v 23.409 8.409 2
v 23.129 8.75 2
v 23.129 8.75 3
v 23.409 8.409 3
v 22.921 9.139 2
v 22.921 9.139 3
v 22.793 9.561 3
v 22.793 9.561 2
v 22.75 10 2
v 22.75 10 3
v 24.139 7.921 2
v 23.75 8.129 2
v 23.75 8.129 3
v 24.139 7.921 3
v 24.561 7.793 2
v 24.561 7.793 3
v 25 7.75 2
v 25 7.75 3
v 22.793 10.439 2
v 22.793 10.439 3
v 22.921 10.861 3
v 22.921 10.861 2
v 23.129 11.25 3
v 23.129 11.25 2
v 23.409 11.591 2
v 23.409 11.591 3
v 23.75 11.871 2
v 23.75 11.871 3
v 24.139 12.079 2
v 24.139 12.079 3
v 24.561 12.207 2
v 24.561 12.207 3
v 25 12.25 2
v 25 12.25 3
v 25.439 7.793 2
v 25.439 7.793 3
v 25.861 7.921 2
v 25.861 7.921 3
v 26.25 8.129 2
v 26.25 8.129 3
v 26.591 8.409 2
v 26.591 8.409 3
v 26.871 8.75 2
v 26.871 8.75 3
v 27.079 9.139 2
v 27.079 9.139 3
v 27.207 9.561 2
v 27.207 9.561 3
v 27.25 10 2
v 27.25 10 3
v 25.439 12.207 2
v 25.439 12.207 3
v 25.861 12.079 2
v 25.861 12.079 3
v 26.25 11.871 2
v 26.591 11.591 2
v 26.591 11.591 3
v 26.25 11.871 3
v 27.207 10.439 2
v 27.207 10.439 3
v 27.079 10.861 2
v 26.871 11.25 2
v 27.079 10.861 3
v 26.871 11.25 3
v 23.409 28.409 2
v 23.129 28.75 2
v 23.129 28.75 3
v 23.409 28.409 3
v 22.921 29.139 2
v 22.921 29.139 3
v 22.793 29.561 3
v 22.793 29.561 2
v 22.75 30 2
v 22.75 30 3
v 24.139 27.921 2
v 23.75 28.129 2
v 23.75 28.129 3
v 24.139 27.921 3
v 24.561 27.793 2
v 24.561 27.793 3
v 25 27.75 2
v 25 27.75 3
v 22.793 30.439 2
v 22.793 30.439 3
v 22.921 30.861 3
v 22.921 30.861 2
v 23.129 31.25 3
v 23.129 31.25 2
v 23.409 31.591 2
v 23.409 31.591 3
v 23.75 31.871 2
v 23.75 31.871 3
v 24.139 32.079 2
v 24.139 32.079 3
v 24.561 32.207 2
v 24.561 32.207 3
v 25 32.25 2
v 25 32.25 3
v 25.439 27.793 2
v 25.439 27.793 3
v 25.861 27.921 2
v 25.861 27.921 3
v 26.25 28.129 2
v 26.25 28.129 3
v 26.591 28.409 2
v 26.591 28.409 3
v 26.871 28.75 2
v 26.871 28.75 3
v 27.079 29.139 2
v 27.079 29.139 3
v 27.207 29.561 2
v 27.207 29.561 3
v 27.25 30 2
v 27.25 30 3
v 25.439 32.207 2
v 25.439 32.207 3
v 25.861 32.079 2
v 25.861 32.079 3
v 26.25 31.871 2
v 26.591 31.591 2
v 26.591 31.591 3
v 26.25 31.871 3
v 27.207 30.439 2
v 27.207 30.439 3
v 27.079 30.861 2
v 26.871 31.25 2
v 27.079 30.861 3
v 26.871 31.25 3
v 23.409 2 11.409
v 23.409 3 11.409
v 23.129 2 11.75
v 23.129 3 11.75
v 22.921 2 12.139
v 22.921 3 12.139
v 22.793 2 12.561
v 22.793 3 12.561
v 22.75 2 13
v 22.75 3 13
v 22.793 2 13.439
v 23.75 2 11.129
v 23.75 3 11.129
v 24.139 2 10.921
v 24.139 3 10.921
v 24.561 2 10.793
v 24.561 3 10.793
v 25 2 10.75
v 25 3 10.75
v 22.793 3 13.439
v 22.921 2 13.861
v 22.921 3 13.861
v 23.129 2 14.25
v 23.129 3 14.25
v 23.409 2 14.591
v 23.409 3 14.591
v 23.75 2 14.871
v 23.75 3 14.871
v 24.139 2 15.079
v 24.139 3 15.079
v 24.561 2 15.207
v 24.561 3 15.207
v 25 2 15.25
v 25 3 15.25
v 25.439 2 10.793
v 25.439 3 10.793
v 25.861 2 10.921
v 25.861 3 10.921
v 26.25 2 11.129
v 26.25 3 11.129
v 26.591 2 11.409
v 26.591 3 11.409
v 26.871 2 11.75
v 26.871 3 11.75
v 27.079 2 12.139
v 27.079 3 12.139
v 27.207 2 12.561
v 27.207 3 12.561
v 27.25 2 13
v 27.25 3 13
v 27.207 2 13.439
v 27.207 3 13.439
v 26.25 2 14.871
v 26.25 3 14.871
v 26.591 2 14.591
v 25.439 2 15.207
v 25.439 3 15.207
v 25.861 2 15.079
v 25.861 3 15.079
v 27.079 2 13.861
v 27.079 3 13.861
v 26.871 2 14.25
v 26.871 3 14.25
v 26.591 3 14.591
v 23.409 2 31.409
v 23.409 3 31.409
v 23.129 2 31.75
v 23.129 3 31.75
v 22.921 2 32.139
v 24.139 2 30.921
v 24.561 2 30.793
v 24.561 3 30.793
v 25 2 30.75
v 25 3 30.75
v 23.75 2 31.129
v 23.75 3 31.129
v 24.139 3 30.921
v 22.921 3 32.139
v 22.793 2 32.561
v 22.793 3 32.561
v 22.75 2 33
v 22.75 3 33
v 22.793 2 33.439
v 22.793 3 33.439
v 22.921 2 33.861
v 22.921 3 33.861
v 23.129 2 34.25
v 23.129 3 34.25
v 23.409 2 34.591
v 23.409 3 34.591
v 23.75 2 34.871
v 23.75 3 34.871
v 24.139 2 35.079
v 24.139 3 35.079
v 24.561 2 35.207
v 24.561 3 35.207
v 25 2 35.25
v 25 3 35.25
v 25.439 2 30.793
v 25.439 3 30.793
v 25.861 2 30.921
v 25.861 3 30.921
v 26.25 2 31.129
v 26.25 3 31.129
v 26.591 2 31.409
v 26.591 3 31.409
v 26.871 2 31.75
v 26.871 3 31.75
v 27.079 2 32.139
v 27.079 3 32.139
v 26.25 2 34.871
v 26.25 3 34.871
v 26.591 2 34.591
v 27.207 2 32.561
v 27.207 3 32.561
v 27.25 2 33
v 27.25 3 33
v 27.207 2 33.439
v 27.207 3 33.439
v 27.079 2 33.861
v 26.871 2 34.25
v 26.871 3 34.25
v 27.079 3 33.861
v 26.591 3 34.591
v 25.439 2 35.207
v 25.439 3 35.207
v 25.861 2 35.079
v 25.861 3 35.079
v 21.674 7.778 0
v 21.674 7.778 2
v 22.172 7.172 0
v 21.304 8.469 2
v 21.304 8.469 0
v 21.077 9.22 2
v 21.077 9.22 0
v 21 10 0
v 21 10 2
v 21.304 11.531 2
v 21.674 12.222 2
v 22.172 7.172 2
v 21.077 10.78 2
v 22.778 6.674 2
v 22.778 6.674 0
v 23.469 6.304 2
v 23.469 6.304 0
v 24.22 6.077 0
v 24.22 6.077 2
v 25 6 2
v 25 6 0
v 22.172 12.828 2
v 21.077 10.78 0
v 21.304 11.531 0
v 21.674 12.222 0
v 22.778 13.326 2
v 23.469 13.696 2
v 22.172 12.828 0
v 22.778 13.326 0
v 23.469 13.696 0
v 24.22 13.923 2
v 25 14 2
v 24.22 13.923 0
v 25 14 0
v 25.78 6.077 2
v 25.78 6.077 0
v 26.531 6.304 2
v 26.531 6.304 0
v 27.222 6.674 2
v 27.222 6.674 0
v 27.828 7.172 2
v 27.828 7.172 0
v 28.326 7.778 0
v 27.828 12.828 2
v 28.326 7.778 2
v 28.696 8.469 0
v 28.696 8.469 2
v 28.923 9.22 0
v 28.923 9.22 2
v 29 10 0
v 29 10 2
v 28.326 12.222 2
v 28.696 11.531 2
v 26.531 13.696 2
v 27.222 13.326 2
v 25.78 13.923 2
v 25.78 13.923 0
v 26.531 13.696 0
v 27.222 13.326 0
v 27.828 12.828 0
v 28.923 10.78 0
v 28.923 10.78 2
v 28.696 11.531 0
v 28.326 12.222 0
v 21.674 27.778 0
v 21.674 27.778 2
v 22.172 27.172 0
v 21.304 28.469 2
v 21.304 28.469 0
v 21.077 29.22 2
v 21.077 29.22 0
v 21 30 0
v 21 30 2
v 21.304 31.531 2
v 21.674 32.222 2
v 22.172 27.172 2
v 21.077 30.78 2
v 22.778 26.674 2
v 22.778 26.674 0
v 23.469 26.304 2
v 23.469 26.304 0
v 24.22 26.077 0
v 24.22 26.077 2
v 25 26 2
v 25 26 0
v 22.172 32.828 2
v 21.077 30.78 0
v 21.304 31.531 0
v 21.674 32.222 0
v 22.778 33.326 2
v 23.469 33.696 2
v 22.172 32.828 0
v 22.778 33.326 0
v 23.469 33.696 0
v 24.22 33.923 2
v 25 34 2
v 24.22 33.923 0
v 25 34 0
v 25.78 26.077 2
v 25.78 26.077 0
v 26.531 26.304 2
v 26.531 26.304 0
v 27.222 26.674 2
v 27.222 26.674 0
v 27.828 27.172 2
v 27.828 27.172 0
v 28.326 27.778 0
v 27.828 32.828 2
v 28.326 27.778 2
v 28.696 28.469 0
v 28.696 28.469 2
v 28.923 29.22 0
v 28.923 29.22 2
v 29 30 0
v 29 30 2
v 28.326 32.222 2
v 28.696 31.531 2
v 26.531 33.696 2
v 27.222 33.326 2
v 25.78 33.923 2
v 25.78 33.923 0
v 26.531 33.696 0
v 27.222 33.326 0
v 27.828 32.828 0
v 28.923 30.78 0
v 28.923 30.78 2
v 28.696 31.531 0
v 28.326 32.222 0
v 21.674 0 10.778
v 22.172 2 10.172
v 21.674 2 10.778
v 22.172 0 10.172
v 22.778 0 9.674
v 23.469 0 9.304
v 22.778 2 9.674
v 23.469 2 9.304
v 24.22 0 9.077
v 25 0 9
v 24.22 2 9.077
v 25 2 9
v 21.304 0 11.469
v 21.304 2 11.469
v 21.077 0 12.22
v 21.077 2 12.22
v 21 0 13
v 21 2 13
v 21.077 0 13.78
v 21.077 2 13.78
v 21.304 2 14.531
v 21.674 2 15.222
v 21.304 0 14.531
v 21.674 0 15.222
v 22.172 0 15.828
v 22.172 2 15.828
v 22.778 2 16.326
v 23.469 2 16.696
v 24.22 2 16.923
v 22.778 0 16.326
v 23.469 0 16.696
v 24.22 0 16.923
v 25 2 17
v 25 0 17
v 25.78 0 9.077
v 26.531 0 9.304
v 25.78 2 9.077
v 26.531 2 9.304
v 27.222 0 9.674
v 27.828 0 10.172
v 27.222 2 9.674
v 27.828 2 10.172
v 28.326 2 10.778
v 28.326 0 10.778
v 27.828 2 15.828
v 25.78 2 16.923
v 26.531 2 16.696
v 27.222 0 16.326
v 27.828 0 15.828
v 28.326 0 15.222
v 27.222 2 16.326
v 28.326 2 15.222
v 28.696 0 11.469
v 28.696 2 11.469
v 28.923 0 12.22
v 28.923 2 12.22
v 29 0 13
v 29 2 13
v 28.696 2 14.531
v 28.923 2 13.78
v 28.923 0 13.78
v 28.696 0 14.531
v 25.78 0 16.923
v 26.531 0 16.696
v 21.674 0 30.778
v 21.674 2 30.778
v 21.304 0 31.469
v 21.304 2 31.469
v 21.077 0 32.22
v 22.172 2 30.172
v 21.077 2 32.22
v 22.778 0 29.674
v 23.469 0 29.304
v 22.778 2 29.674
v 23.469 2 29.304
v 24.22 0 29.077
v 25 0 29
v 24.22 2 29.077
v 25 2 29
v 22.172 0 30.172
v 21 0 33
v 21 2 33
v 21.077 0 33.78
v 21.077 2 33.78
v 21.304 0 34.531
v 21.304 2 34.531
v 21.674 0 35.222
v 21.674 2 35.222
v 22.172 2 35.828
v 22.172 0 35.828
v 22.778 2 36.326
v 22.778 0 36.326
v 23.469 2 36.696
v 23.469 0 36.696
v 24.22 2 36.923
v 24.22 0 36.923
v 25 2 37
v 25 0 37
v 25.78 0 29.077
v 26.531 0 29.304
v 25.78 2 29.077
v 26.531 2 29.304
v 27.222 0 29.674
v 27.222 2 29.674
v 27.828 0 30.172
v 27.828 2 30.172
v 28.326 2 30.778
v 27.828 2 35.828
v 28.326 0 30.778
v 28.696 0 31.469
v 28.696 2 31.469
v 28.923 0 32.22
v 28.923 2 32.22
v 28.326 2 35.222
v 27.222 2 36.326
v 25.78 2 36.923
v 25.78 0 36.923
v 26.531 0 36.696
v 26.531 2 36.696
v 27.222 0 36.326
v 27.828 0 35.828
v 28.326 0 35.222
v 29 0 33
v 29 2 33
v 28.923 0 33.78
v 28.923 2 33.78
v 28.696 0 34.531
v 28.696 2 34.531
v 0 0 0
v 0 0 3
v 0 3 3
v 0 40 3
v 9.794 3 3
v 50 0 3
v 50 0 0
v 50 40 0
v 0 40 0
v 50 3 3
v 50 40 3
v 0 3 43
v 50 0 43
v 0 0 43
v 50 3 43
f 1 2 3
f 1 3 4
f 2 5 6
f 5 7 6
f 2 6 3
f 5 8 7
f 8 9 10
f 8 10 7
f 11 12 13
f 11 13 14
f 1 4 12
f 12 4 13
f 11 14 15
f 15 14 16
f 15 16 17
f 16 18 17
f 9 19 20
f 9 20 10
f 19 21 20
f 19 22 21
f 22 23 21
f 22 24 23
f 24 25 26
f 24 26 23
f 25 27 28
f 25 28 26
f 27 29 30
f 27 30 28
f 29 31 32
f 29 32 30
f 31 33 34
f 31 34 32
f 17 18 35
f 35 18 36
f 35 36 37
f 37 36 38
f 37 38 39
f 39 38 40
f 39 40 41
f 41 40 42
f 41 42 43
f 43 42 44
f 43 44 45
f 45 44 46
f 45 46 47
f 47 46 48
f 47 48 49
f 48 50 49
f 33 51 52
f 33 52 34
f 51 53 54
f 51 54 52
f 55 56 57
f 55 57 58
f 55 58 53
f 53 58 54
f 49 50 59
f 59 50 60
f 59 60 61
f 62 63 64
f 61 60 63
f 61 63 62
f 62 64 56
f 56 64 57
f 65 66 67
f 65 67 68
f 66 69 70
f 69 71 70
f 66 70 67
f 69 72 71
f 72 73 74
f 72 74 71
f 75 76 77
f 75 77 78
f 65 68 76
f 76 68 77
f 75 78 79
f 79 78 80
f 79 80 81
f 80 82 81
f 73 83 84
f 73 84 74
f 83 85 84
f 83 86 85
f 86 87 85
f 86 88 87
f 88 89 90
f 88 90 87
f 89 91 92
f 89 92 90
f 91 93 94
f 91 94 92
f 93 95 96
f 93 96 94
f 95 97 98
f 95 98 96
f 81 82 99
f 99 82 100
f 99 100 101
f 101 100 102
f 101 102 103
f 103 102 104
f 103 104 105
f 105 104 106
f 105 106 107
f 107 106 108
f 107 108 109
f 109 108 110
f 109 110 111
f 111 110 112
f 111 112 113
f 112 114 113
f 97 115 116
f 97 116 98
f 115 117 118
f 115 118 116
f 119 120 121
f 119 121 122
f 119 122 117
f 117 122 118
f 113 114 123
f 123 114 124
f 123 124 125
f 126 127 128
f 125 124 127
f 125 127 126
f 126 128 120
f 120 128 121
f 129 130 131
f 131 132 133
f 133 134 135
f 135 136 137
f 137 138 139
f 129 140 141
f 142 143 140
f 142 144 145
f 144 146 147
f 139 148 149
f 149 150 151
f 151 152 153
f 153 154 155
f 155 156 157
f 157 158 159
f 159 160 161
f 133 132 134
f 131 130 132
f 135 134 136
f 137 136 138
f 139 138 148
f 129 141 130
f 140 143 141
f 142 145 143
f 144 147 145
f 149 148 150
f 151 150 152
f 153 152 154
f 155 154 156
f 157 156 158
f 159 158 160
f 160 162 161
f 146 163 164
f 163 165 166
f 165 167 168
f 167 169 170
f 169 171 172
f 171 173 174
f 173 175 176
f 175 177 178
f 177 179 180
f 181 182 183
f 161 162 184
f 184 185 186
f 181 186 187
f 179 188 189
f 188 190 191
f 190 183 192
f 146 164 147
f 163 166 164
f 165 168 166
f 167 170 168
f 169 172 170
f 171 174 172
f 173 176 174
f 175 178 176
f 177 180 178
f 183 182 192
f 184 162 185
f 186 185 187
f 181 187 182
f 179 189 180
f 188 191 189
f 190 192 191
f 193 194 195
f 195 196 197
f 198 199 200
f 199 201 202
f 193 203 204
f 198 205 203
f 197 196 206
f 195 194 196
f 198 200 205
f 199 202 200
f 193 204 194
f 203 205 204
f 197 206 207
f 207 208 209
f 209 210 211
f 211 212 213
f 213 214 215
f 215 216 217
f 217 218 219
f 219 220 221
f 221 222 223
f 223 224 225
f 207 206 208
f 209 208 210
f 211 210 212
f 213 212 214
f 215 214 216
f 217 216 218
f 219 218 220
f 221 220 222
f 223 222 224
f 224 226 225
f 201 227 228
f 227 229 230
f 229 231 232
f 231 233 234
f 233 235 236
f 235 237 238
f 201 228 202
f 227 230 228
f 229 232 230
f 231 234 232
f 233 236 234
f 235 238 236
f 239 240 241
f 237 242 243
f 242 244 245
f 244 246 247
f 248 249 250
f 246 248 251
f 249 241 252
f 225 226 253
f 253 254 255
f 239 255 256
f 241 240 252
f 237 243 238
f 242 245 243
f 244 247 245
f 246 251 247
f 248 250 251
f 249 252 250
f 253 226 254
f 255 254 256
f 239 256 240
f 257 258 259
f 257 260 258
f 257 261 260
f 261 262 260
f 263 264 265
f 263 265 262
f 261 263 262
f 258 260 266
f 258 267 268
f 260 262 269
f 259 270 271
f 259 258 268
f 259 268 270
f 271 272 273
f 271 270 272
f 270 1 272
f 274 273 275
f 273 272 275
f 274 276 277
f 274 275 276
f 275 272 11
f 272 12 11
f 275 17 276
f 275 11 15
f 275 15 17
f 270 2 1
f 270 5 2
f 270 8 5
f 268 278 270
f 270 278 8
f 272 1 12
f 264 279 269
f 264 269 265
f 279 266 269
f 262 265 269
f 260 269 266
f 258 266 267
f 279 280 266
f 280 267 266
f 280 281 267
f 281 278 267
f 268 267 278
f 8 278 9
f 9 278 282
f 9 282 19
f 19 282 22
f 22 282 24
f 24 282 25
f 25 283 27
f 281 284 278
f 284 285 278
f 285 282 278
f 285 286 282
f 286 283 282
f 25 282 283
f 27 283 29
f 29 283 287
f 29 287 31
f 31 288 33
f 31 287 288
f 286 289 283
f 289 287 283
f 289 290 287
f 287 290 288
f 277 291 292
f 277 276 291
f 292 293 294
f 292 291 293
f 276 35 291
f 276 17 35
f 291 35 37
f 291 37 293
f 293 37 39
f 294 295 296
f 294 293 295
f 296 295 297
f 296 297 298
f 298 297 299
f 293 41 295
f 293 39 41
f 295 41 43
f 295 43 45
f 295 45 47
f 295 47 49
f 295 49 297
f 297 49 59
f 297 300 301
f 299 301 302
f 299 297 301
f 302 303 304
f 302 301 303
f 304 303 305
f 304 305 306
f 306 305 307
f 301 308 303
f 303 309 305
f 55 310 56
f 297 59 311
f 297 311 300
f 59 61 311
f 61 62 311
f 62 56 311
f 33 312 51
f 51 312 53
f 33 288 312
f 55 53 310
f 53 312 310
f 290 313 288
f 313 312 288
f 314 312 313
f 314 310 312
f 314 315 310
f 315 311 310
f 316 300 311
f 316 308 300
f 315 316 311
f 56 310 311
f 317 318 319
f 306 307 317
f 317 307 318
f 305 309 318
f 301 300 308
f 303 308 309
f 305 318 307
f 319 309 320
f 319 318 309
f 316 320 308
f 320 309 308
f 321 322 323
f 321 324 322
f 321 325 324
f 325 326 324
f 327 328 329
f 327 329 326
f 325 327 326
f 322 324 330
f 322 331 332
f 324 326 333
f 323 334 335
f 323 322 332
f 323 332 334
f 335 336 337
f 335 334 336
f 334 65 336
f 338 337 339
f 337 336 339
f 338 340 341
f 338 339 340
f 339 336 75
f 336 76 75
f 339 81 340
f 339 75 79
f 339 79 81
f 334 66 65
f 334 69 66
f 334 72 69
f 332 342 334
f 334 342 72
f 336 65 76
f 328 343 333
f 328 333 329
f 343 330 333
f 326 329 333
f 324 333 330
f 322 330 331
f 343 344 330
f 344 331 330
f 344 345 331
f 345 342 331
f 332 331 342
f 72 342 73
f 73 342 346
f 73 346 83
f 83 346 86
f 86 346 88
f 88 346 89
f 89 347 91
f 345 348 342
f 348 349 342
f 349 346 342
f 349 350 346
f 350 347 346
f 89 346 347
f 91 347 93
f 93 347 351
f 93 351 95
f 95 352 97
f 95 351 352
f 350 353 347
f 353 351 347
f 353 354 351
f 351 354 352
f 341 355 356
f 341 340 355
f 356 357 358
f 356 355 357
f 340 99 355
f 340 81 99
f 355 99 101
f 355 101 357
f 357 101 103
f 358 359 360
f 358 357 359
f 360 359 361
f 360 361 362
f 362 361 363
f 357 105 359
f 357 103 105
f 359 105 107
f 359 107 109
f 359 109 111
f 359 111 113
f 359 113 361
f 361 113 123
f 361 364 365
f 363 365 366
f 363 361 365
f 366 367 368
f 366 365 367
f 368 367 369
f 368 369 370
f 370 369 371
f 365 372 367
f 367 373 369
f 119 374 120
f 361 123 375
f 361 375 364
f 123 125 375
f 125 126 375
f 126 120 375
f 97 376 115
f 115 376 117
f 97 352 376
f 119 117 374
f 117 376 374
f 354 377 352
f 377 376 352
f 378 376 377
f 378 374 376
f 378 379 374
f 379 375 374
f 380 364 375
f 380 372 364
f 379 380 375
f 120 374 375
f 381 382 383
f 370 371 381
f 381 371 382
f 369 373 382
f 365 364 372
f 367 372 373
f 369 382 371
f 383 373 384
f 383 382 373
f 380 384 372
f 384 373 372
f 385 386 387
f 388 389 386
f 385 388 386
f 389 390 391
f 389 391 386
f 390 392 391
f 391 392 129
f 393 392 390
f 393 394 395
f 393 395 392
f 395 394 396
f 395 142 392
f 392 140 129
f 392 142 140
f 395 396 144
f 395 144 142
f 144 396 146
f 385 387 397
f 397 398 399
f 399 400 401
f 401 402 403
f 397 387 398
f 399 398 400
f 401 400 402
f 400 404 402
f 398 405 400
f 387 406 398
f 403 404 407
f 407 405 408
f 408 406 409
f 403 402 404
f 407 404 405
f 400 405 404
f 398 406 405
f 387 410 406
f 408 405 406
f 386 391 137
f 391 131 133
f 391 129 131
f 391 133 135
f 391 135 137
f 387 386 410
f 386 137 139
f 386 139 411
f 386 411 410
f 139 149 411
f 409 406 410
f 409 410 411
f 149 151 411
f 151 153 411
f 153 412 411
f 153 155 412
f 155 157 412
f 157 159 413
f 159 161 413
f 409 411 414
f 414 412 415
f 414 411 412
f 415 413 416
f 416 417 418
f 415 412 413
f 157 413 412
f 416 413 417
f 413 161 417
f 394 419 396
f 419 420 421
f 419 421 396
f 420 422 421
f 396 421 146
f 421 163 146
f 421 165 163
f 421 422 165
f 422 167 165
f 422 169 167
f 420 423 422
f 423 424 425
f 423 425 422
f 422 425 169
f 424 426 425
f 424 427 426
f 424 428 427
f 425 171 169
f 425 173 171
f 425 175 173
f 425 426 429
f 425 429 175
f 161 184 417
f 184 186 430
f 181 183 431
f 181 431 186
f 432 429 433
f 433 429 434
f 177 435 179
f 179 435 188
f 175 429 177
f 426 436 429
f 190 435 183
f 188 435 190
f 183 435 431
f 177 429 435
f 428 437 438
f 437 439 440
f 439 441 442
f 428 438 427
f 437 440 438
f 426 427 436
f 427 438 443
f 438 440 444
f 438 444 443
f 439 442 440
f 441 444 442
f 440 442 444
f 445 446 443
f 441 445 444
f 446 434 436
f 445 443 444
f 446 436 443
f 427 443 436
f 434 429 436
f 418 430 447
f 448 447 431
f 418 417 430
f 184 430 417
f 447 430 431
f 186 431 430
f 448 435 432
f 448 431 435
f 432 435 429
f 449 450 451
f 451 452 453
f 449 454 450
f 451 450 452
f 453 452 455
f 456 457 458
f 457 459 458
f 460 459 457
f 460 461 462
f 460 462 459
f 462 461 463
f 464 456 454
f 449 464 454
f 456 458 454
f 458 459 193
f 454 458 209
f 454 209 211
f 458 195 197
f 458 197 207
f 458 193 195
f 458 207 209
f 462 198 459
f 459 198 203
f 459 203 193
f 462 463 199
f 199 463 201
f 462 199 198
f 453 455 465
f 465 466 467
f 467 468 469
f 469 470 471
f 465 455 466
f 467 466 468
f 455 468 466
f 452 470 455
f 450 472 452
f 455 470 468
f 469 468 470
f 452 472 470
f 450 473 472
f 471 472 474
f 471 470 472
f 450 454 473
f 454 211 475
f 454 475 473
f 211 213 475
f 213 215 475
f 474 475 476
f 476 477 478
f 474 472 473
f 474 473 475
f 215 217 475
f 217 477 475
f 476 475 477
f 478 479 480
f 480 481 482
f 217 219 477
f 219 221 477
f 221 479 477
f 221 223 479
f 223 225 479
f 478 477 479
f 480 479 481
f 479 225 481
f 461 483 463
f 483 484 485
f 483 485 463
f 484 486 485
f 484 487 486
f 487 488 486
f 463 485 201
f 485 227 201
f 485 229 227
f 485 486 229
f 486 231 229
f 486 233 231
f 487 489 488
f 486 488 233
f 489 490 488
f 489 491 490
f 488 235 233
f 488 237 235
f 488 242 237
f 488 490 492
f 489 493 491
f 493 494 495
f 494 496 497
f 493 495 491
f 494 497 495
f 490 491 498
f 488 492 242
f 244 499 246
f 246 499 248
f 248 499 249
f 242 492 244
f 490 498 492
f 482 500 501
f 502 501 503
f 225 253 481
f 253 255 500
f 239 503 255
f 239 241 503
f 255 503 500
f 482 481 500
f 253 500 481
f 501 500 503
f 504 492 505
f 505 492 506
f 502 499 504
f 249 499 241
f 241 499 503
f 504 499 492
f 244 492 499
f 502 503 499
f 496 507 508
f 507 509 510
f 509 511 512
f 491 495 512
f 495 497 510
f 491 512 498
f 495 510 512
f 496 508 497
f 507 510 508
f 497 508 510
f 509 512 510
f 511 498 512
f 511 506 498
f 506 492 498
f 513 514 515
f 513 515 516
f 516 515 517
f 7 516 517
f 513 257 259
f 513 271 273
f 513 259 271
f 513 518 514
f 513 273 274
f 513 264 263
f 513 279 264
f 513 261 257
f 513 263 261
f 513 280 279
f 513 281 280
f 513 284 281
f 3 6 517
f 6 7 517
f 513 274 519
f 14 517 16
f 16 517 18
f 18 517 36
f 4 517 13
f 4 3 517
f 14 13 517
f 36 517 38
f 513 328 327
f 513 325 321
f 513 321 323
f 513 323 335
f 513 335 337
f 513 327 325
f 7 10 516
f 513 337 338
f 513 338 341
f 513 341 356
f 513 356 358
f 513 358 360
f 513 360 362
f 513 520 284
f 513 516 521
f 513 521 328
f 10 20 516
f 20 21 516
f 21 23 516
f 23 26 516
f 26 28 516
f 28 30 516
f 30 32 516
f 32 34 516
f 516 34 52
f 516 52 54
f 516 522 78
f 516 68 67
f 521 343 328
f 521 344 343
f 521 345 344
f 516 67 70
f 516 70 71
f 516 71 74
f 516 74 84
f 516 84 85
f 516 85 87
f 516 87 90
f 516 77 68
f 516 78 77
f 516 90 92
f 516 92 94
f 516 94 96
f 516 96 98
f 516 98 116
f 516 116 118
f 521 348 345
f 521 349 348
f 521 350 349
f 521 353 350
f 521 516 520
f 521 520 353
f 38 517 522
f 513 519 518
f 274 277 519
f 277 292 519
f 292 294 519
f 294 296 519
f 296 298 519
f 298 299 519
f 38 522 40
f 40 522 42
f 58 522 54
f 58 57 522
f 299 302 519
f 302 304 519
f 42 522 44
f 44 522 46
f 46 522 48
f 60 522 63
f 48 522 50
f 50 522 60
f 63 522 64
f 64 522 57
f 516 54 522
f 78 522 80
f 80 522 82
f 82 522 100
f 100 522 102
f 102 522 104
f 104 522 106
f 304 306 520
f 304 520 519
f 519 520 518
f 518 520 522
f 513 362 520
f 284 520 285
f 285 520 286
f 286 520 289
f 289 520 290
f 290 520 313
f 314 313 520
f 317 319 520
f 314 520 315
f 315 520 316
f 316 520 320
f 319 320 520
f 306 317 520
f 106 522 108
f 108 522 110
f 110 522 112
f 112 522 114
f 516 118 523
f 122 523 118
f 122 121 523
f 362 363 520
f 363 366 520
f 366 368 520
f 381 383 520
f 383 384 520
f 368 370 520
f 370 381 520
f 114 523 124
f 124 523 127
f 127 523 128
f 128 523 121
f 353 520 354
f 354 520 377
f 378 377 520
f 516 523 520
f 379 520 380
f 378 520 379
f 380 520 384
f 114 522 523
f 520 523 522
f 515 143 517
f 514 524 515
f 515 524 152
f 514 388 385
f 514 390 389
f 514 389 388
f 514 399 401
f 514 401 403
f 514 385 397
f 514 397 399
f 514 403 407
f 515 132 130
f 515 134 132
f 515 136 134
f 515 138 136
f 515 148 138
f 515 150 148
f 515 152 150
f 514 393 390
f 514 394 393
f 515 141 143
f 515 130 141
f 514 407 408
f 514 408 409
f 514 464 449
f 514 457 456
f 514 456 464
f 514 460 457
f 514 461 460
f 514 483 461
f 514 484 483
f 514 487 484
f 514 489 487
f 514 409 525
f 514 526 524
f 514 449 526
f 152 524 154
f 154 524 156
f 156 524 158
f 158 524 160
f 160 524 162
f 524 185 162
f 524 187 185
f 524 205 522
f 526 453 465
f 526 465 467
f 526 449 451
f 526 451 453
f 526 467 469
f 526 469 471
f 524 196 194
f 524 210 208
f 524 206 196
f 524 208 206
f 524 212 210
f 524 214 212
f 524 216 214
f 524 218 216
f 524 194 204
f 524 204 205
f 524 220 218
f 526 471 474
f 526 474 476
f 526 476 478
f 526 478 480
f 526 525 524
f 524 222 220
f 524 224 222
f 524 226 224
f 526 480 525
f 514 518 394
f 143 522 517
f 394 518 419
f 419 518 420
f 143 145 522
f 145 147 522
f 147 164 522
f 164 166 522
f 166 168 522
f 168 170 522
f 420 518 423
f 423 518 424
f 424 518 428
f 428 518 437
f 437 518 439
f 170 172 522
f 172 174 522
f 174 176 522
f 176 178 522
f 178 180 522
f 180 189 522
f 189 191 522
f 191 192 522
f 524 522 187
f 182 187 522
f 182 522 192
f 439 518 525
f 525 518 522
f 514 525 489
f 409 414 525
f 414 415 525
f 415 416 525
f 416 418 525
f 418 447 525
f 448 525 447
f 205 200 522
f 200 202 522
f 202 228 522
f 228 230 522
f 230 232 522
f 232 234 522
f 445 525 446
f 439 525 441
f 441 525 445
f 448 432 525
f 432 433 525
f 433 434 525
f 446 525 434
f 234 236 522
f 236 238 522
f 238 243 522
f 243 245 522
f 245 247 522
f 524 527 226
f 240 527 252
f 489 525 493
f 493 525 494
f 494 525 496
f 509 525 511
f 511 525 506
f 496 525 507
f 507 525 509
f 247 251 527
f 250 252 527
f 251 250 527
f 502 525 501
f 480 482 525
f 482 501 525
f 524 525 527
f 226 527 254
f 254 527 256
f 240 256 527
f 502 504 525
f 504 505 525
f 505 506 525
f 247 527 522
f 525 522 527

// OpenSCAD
// パラメータ
bracket_w = 50;   // 幅
bracket_h = 40;   // 奥行・高さ
thickness = 3;

// 皿穴パラメータ
hole_d = 4.5;      // 貫通穴径
cs_d = 8;          // 皿座径
cs_depth = 2;      // 皿座深さ
edge_offset = 10;  // フランジ面の縁から穴中心までの距離

// 2つ穴のY/Z座標
hole_pos = [edge_offset, bracket_h - edge_offset];

// 板金L金具
module flange_horizontal() {
    // 原点コーナーから +Y 方向へ
    difference() {
        cube([bracket_w, bracket_h, thickness]);
        // 穴: 原点からY方向へ広がる、皿頭外側（Z=0側が外面）
        for (y = hole_pos)
            translate([bracket_w/2, y, 0])
                countersunk_hole("down");
    }
}
module flange_vertical() {
    // 原点から +Z方向へ
    difference() {
        cube([bracket_w, thickness, bracket_h]);
        // 穴: 原点からZ方向へ広がる、皿頭外側（Y=0側が外面）
        for (z = hole_pos)
            translate([bracket_w/2, 0, z])
                countersunk_hole("front");
    }
}

// 皿穴モジュール
// face: "down"=下向き外面, "front"=前向き外面
module countersunk_hole(face) {
    if (face == "down") {
        // Z=0側が皿座
        union() {
            // 貫通穴
            cylinder(d=hole_d, h=thickness+0.2, $fn=32);
            // 皿座
            cylinder(d=cs_d, h=cs_depth, $fn=32);
        }
    } else if (face == "front") {
        // Y=0側が皿座
        rotate([-90,0,0])
        union() {
            // 貫通穴
            cylinder(d=hole_d, h=thickness+0.2, $fn=32);
            // 皿座
            cylinder(d=cs_d, h=cs_depth, $fn=32);
        }
    }
}

// 組立（原点内コーナー）
flange_horizontal();
translate([0, 0, thickness]) // 水平板上端に垂直板
    flange_vertical();
